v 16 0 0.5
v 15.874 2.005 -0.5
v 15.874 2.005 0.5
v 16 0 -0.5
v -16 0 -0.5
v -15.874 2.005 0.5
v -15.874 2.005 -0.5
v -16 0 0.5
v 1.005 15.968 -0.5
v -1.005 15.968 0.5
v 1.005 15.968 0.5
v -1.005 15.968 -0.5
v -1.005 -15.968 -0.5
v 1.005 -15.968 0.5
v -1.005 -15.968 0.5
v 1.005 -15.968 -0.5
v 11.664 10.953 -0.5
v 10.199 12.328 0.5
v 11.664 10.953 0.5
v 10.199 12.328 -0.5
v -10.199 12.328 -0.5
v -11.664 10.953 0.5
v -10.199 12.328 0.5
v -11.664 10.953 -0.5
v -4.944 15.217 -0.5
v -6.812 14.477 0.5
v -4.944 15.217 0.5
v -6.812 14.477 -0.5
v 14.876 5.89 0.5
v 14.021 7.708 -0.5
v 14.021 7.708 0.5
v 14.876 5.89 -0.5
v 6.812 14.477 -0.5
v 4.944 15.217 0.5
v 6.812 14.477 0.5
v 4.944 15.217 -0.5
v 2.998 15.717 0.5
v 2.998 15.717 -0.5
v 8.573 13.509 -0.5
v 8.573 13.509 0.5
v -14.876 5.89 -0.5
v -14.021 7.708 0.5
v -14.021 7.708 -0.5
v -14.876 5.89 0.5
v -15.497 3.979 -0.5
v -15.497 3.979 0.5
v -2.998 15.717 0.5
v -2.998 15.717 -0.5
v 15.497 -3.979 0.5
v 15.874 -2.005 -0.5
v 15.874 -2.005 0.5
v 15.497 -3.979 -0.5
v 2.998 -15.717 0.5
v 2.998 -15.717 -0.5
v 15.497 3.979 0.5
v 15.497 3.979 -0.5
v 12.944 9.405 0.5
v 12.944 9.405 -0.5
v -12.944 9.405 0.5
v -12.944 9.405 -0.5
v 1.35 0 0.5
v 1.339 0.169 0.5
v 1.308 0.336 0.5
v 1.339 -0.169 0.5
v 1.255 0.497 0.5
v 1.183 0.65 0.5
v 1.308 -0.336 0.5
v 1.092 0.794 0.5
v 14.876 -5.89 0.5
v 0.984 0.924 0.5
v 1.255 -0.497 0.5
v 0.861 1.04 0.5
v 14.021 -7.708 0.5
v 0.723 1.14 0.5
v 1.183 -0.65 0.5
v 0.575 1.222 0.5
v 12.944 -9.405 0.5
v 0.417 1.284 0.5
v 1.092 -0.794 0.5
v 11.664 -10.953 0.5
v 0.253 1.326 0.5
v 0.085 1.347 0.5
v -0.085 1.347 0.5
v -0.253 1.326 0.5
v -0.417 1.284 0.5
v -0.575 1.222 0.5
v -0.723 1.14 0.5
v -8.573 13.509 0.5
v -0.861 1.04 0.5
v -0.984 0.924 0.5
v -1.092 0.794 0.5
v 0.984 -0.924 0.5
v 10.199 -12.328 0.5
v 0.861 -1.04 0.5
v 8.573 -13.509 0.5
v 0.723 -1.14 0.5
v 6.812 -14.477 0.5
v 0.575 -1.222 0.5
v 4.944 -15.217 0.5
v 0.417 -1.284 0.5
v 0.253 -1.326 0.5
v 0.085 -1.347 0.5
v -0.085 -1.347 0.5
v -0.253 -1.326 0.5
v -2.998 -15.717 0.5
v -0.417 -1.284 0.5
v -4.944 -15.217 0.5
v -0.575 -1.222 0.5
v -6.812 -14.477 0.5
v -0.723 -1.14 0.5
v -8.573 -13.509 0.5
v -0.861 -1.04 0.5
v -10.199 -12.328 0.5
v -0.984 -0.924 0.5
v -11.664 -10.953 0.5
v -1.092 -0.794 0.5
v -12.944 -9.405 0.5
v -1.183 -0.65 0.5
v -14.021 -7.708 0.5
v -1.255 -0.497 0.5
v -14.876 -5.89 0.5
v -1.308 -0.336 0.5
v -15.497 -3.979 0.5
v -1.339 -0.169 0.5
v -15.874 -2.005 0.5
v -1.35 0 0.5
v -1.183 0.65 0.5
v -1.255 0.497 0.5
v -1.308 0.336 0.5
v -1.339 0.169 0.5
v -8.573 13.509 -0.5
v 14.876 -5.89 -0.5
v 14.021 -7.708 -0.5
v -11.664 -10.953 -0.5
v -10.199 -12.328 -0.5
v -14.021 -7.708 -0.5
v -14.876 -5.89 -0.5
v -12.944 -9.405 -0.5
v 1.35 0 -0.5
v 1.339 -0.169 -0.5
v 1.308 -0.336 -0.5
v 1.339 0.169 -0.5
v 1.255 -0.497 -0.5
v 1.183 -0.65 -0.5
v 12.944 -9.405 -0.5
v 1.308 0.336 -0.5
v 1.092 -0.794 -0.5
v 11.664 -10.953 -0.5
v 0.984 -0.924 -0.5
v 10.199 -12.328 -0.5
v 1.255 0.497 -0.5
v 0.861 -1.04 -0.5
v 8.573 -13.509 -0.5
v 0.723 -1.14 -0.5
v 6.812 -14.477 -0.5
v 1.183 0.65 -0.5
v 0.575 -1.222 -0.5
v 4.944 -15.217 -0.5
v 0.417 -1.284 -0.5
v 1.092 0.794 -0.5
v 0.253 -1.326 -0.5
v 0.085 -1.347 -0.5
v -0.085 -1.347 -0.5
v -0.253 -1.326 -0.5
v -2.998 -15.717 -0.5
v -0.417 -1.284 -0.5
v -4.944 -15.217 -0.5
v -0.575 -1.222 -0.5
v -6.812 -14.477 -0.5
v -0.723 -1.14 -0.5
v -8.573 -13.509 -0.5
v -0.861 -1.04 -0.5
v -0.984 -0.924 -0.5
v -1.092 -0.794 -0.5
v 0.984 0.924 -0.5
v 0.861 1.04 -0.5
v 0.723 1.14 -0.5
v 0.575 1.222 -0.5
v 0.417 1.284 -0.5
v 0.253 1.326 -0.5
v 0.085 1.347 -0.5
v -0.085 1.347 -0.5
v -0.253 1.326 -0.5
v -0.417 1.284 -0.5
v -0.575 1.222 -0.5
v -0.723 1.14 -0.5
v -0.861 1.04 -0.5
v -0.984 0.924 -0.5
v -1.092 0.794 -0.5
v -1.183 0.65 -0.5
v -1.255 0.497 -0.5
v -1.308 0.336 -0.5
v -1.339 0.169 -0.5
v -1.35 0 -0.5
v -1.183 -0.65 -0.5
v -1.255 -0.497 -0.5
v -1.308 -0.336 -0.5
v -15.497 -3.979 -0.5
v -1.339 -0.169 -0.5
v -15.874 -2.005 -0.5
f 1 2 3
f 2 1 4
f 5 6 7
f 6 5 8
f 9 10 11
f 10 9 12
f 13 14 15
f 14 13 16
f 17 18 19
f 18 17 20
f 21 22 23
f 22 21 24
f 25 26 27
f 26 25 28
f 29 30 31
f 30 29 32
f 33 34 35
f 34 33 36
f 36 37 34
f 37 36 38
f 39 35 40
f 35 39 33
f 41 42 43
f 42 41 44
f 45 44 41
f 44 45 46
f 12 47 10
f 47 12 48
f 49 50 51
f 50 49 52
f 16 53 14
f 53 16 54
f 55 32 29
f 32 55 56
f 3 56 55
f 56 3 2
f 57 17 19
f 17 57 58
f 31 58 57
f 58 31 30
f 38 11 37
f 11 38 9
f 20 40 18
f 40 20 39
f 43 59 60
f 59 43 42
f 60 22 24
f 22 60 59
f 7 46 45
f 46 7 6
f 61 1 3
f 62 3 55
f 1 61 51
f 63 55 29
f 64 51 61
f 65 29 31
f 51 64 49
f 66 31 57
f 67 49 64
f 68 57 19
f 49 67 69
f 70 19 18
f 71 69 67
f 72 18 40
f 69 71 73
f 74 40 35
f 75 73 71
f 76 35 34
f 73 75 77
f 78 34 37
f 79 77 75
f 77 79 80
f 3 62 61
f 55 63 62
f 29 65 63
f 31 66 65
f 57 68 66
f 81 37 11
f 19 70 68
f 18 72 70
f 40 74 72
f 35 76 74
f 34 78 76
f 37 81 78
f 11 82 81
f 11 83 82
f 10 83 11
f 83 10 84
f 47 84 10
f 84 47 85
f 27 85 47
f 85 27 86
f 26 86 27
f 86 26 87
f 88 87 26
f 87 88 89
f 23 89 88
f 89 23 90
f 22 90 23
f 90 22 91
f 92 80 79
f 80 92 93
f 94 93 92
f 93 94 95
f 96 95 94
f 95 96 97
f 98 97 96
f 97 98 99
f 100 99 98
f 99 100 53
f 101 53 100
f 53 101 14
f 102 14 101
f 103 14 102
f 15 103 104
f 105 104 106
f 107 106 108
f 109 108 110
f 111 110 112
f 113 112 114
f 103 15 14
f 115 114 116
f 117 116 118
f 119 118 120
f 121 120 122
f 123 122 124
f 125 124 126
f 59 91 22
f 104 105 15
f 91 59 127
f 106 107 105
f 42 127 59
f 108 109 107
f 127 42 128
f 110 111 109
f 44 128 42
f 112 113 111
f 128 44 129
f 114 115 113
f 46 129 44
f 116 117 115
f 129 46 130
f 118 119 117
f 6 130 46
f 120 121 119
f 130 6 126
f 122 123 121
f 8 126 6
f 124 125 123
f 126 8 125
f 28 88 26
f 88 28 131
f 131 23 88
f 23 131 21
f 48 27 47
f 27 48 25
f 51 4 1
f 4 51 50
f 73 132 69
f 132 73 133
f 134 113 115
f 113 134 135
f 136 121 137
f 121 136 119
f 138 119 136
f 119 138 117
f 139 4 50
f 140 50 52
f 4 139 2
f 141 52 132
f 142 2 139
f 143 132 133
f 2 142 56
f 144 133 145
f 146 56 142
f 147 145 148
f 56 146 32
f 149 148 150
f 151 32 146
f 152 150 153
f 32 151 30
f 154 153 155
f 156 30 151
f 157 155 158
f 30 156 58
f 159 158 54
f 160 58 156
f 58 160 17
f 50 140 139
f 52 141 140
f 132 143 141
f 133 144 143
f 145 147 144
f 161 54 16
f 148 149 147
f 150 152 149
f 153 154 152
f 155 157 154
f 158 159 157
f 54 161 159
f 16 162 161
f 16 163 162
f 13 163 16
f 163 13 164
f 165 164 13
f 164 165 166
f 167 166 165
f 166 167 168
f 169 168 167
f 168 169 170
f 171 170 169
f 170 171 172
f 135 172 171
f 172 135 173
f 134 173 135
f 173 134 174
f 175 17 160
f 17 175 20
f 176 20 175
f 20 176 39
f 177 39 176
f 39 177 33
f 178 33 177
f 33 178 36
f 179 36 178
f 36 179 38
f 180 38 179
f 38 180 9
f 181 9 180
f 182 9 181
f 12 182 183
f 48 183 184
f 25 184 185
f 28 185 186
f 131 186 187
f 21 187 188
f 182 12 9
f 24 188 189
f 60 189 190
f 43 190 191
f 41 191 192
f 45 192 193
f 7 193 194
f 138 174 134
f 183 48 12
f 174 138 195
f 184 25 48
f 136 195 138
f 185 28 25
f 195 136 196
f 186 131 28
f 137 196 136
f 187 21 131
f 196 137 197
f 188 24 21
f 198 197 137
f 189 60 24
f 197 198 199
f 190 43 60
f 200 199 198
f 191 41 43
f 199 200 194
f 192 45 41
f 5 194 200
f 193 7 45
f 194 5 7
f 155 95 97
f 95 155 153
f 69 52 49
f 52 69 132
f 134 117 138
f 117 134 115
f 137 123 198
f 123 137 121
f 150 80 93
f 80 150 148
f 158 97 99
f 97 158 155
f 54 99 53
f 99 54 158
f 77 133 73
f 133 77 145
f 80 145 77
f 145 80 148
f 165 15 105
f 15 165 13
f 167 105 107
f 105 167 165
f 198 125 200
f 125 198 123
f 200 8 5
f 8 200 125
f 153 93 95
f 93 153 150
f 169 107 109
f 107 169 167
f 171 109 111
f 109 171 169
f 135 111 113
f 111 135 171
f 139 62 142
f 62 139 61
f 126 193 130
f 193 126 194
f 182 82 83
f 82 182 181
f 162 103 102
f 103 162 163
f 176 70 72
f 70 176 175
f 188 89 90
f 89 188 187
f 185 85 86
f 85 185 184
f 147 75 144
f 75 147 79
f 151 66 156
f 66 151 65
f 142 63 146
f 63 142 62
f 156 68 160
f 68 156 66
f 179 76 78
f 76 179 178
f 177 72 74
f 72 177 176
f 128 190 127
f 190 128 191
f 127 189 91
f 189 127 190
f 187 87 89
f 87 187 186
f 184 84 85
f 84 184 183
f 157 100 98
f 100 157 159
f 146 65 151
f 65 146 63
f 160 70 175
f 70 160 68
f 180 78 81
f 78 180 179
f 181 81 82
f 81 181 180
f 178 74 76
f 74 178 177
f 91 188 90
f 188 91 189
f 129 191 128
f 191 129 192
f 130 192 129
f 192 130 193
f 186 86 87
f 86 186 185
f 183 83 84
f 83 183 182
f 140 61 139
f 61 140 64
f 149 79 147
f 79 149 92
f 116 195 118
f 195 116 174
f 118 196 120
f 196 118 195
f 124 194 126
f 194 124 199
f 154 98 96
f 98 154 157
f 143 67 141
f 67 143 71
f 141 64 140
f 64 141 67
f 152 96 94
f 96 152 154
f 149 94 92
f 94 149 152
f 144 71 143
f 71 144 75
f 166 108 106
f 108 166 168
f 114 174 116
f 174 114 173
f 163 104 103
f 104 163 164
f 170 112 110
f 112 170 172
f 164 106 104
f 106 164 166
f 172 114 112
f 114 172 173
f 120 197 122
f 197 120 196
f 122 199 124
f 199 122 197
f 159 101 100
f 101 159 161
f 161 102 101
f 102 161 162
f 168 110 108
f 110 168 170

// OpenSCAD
$fn = 50;


difference() {
	union() {
		translate(v = [0, 0, -0.5000000000]) {
			cylinder(h = 1, r = 16.0000000000);
		}
	}
	union() {
		translate(v = [0, 0, -100.0000000000]) {
			cylinder(h = 200, r = 1.3500000000);
		}
	}
}
